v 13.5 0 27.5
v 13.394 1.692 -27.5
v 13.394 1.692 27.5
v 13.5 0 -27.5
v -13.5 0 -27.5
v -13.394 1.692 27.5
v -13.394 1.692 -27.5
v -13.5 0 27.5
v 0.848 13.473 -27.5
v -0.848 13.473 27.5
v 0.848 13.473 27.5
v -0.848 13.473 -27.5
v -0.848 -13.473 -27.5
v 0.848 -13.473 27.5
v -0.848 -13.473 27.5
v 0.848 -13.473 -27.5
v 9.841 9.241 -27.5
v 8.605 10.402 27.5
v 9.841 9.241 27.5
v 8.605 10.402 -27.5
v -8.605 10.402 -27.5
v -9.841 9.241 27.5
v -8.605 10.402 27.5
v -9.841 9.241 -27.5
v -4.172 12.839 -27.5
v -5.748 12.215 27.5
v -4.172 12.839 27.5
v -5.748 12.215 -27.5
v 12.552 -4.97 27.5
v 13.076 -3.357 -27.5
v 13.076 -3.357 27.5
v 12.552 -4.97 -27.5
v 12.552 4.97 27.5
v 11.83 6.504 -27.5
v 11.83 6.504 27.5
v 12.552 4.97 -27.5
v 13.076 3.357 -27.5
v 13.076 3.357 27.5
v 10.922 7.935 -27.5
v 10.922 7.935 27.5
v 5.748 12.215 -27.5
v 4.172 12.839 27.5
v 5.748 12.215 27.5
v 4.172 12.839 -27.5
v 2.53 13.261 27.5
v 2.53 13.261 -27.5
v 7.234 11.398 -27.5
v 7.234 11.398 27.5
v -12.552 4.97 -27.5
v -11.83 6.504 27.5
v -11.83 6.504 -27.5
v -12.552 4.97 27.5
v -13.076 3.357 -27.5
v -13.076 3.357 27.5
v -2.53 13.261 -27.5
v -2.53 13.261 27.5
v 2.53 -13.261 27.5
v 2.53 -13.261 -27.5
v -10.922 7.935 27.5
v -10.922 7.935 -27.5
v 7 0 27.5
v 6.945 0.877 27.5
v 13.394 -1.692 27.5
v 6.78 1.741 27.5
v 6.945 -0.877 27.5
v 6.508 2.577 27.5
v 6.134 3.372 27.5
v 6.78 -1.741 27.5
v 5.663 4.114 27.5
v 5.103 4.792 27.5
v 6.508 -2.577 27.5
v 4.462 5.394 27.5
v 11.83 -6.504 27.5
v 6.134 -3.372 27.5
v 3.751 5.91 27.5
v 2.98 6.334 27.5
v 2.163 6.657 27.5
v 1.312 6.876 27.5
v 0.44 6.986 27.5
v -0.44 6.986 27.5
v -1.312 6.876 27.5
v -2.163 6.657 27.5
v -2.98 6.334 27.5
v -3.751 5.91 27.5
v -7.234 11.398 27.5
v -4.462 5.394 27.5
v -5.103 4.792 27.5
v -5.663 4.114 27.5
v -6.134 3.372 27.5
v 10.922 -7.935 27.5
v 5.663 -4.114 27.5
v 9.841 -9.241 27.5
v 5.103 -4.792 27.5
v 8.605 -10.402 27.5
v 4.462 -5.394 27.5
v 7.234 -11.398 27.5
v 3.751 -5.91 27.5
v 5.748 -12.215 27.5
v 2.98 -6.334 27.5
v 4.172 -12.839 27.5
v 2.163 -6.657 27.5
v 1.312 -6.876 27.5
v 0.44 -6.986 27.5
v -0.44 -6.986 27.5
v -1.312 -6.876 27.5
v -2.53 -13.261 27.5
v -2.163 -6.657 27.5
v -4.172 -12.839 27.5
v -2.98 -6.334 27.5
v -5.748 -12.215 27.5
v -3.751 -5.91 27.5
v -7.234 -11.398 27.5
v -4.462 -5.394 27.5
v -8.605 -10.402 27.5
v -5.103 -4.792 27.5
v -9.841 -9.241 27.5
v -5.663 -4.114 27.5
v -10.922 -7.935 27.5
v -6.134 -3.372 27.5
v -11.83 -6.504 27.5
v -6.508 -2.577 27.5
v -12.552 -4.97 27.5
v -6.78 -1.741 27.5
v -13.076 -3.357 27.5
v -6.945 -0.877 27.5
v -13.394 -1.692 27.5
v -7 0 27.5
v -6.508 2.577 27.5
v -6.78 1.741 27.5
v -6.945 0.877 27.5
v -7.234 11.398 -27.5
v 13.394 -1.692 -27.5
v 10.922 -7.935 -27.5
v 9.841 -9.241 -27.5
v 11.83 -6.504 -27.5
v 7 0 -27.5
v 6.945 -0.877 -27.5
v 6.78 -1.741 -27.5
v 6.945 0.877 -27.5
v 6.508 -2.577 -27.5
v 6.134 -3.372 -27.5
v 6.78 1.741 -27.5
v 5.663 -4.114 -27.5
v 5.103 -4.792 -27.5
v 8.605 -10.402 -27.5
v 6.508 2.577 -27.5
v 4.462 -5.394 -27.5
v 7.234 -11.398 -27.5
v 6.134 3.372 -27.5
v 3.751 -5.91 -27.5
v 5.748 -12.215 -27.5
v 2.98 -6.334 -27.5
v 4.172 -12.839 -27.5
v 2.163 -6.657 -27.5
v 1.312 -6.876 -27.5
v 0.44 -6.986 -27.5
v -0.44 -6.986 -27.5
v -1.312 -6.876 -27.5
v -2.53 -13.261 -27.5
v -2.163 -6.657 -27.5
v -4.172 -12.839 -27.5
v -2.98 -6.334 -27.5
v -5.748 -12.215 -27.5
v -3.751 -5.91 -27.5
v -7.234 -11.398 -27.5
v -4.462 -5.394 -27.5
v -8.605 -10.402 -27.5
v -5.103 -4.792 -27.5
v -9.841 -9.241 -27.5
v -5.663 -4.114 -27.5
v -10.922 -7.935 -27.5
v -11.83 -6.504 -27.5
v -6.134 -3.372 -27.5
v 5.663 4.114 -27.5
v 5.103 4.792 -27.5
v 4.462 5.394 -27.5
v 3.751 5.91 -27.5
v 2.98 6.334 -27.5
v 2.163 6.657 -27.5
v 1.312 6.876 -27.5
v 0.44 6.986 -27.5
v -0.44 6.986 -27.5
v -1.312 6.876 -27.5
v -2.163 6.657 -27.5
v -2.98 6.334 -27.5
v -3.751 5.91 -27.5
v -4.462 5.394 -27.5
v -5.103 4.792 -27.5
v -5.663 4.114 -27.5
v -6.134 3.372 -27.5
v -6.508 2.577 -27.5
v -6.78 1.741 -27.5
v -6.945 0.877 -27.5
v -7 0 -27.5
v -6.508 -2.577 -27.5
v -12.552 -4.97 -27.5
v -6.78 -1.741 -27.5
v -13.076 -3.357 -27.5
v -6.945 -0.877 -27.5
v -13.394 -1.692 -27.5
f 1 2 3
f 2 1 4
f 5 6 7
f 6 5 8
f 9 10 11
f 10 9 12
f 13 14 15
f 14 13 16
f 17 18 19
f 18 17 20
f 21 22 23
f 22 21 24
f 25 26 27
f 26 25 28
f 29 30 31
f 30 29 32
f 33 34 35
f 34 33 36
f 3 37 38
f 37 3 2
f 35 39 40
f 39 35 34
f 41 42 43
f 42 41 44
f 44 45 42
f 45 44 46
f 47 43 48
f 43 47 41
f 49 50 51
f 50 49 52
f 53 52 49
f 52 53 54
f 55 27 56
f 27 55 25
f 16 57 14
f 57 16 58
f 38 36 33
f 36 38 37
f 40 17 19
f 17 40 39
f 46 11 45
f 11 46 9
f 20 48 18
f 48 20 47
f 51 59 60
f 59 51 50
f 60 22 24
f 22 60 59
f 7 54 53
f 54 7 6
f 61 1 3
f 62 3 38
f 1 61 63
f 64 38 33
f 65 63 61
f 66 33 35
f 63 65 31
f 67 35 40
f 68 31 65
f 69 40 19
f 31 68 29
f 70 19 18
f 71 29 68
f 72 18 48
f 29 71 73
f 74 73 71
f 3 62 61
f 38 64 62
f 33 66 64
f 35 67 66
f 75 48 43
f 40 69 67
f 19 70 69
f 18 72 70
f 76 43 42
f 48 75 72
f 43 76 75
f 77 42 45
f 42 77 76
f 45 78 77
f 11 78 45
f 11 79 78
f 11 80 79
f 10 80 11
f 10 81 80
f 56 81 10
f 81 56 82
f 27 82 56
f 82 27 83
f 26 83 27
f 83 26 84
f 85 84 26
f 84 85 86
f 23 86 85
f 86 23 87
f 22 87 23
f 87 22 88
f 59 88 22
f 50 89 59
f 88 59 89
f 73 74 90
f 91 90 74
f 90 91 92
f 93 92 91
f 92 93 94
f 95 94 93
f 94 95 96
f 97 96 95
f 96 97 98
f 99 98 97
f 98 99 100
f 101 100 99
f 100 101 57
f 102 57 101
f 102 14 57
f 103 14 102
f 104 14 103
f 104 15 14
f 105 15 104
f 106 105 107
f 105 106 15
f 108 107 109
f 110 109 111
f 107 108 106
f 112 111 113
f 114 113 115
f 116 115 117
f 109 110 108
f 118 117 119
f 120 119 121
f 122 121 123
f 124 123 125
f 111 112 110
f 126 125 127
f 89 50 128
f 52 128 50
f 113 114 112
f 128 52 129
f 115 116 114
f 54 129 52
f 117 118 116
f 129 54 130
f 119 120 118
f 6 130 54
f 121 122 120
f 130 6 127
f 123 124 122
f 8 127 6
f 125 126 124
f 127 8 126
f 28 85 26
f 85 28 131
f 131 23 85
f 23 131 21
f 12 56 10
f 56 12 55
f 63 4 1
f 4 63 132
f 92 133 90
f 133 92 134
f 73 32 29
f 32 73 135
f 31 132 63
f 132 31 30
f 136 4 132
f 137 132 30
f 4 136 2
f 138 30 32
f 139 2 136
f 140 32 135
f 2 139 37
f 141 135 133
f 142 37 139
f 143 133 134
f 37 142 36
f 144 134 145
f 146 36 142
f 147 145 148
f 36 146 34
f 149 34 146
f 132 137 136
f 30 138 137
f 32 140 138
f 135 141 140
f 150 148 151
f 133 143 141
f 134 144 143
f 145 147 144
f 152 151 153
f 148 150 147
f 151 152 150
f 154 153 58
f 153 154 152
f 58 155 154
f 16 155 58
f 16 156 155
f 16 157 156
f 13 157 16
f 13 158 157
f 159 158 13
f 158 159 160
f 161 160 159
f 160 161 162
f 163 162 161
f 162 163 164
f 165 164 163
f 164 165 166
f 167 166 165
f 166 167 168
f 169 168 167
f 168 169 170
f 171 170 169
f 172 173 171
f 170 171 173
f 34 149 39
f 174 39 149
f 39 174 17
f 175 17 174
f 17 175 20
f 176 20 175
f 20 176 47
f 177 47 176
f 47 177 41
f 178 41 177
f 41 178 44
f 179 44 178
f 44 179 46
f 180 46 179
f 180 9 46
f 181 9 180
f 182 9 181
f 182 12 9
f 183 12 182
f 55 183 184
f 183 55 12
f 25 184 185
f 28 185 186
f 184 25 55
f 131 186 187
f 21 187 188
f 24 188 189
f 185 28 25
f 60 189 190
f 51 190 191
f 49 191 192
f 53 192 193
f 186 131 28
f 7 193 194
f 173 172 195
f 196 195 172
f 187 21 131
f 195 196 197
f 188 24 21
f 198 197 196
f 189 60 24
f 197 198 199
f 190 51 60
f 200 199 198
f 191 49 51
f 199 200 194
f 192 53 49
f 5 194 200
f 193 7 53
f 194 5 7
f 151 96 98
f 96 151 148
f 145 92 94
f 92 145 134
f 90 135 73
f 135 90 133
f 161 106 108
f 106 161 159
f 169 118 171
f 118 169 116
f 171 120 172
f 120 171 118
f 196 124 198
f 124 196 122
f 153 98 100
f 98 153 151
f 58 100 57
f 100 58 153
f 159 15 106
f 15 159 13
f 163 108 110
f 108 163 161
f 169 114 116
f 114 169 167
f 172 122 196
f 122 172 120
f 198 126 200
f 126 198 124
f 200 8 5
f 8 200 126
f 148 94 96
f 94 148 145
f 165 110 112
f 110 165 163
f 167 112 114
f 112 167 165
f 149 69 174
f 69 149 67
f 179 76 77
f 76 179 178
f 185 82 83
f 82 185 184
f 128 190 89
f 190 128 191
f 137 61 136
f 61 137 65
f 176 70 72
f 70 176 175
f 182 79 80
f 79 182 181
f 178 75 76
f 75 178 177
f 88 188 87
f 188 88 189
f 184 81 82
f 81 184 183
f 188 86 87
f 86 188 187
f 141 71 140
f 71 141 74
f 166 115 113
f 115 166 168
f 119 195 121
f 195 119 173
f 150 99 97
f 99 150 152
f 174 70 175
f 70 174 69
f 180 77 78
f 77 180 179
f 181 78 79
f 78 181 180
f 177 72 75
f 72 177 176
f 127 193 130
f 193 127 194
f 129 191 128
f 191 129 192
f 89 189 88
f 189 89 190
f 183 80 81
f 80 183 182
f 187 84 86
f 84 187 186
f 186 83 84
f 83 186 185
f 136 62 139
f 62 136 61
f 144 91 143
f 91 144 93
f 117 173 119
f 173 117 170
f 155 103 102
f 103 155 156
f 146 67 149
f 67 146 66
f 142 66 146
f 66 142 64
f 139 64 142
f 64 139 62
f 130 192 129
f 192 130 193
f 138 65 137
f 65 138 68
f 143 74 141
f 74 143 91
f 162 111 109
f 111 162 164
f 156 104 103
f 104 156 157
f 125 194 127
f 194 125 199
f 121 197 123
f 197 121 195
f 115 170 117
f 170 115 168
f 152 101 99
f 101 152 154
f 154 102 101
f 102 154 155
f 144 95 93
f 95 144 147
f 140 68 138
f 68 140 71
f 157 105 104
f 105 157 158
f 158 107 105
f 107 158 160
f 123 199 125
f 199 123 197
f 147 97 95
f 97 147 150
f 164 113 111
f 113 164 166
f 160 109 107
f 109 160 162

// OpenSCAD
$fn = 50;


difference() {
	union() {
		translate(v = [0, 0, -27.5000000000]) {
			cylinder(h = 55, r = 13.5000000000);
		}
	}
	union() {
		translate(v = [0, 0, -100.0000000000]) {
			cylinder(h = 200, r = 7);
		}
	}
}
